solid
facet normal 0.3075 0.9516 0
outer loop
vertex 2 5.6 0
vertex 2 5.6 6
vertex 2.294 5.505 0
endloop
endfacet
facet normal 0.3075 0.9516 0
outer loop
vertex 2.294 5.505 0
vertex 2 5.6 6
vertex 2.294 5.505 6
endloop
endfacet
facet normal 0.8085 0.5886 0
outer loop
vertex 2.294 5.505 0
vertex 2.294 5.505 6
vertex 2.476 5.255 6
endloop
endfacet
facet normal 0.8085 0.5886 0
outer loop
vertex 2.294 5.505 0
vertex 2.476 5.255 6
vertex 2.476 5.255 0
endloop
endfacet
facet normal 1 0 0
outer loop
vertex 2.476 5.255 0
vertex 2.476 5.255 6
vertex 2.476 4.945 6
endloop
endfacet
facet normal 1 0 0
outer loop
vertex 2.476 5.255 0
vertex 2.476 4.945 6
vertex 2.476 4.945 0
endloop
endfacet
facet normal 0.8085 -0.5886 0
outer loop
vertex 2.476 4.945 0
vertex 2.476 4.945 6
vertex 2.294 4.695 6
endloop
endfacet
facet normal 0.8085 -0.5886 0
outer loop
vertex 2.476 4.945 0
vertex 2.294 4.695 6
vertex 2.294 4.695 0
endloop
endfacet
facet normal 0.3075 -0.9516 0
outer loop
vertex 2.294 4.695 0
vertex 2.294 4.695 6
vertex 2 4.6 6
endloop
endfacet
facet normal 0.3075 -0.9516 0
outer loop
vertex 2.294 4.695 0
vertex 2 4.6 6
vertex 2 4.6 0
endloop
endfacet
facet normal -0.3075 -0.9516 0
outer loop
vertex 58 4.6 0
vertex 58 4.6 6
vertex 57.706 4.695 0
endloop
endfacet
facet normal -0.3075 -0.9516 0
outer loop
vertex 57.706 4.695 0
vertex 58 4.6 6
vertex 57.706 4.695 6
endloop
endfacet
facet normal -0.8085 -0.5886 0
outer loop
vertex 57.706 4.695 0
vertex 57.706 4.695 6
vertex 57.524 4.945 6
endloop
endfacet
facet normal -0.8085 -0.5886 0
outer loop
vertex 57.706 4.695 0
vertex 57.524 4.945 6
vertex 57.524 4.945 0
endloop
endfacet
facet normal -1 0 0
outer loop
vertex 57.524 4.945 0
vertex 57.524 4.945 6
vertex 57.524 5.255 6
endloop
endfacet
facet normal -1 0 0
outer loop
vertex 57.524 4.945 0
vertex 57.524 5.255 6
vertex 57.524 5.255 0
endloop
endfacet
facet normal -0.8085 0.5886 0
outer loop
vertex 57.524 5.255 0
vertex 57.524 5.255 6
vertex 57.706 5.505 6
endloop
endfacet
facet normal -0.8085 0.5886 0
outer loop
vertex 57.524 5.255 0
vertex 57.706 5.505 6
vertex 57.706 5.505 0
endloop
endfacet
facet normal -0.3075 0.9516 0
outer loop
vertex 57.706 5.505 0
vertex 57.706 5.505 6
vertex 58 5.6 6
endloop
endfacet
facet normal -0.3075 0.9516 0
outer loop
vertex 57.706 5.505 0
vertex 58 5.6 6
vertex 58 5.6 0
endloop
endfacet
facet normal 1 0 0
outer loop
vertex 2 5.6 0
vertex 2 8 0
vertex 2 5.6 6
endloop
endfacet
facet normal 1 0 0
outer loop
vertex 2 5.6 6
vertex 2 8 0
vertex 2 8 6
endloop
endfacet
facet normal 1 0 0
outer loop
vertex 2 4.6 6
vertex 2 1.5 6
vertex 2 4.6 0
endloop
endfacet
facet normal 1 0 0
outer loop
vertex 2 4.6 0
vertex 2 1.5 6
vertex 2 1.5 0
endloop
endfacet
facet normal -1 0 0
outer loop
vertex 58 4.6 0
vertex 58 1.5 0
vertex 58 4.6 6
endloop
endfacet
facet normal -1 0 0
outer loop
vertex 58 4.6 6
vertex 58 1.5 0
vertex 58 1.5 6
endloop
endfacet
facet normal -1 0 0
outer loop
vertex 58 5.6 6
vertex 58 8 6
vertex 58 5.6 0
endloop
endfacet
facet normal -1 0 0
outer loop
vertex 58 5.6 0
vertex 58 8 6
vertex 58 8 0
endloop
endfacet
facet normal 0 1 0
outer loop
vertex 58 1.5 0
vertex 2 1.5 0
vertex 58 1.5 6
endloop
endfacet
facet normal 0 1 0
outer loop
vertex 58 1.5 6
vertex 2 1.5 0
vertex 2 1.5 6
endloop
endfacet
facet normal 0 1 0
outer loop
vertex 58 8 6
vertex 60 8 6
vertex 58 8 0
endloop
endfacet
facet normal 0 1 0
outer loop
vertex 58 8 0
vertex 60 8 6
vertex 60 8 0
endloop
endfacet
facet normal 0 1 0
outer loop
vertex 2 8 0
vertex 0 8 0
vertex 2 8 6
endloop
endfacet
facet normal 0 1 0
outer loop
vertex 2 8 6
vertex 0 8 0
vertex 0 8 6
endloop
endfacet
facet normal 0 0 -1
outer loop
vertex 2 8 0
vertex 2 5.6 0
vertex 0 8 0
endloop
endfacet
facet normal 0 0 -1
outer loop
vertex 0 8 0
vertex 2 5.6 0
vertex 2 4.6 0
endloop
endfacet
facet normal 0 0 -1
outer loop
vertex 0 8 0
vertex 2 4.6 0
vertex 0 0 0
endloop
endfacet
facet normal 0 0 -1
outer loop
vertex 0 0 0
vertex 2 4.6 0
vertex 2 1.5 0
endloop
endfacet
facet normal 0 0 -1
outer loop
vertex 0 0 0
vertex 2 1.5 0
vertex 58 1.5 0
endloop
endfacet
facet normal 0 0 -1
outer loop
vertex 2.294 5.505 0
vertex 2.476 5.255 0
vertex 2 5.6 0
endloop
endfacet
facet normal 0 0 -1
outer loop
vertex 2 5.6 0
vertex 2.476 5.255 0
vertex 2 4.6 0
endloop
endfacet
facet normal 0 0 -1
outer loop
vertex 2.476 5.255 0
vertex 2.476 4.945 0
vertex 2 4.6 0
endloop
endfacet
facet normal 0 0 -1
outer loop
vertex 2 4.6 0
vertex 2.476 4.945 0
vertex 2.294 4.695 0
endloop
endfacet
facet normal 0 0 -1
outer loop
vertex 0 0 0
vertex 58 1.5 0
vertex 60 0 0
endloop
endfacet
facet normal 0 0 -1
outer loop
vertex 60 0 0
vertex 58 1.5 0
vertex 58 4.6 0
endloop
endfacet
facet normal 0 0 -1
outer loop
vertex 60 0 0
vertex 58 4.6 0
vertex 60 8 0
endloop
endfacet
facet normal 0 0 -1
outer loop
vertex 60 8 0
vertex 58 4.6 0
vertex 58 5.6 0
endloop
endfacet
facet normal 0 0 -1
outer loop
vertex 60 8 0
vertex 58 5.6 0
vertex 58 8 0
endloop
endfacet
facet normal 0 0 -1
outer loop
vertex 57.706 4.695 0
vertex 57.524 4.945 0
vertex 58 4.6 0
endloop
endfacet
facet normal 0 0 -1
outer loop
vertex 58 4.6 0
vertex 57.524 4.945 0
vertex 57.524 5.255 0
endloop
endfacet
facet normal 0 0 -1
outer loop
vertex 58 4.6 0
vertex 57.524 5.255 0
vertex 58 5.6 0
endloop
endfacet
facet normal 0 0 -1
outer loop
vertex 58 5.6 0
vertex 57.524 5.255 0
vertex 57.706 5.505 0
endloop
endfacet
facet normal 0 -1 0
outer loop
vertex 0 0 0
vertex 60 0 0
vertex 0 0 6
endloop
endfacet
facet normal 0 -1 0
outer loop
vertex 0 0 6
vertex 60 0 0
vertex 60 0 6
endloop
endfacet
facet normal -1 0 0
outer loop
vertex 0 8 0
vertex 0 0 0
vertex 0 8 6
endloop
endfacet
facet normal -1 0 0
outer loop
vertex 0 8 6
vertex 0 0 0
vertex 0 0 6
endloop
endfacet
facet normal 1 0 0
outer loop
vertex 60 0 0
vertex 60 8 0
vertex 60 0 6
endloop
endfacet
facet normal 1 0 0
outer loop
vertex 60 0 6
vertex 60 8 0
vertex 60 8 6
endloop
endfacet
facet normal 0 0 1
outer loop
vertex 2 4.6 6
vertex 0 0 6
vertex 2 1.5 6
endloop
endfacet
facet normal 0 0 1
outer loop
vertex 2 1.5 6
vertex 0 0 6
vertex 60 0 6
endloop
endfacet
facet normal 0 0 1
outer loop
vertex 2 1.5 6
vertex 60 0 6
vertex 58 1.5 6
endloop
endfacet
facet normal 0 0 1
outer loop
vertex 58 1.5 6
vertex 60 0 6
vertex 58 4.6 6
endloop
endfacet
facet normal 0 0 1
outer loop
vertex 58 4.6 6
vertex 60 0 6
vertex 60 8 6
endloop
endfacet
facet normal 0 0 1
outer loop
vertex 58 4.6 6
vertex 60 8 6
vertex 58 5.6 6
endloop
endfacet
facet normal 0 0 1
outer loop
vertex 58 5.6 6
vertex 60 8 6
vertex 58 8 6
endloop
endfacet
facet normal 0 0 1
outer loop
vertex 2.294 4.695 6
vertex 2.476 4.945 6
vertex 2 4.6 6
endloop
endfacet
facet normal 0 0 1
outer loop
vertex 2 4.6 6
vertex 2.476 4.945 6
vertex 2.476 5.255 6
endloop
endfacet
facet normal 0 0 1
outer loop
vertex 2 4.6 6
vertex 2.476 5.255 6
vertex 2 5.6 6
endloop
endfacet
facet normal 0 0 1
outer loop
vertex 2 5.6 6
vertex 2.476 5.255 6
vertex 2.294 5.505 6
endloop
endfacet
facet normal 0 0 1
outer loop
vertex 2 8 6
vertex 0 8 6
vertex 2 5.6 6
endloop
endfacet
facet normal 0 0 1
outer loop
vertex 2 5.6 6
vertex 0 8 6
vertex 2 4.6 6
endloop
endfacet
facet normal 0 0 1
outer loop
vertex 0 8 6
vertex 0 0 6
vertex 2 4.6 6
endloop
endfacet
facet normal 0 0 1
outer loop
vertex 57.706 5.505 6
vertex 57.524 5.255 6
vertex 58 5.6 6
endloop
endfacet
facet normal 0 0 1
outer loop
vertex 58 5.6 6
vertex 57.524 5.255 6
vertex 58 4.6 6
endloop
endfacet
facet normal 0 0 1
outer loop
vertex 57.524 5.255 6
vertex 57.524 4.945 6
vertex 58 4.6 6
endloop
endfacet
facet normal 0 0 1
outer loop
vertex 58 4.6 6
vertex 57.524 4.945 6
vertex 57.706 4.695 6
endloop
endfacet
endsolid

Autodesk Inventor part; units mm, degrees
ref_plane "YZ Plane" through (0, 0, 0) normal (1, 0, 0) x (0, 1, 0)
ref_plane "XZ Plane" through (0, 0, 0) normal (0, 1, 0) x (-1, 0, 0)
ref_plane "XY Plane" through (0, 0, 0) normal (0, 0, 1) x (1, 0, 0)
sketch "Sketch1" plane through (0, 0, 0) normal (0, 0, 1) x (1, 0, 0)
  line L0 (0, 0) -> (60, 0)
  line L1 (60, 0) -> (60, 8)
  line L2 (60, 8) -> (0, 8)
  line L3 (0, 8) -> (0, 0)
  dimension "d0" = 60
  dimension "d3" = 8
extrude "Extrusion1" add sketch "Sketch1" along normal blind 6
sketch "Sketch2" plane through (0, 0, 6) normal (0, 0, 1) x (1, 0, 0)
  line L0 (0, 0) -> (60, 0) projected
  line L1 (2, 1.5) -> (58, 1.5)
  line L2 (60, 0) -> (60, 8) projected
  line L3 (2, 1.5) -> (2, 8)
  line L4 (60, 8) -> (0, 8) projected
  line L5 (58, 1.5) -> (58, 8)
  line L6 (58, 8) -> (2, 8)
  line L7 (0, 4.6) -> (60, 4.6) construction
  dimension "d5" = 1.5
  dimension "d6" = 56
  dimension "d7" = 2
  dimension "d12" = 4.6
extrude "Extrusion2" cut sketch "Sketch2" against normal blind 20
sketch "Sketch3" plane through (0, 0, 6) normal (0, 0, 1) x (1, 0, 0)
  line L0 (0, 8) -> (0, 0) construction
  line L1 (0, 4.6) -> (60, 4.6) construction
  line L2 (60, 0) -> (60, 8) construction
  line L3 (0, 0) -> (60, 0) construction
  line L4 (2, 1.5) -> (2, 8) construction
  arc A0 (2, 4.6) -> (2, 5.6) centre (2, 5.1) ccw
  line L5 (2, 5.6) -> (2, 4.6)
  line L6 (58, 1.5) -> (58, 8) projected
  arc A1 (58, 5.6) -> (58, 4.6) centre (58, 5.1) ccw
  line L7 (58, 5.6) -> (58, 4.6)
  dimension "d13" = 4.6
  dimension "d17" = 1
  dimension "d18" = 5.1
  dimension "d19" = 1
  dimension "d20" = 5.1
extrude "Extrusion3" add sketch "Sketch3" against normal blind 6
properties part number "Houderpi"
